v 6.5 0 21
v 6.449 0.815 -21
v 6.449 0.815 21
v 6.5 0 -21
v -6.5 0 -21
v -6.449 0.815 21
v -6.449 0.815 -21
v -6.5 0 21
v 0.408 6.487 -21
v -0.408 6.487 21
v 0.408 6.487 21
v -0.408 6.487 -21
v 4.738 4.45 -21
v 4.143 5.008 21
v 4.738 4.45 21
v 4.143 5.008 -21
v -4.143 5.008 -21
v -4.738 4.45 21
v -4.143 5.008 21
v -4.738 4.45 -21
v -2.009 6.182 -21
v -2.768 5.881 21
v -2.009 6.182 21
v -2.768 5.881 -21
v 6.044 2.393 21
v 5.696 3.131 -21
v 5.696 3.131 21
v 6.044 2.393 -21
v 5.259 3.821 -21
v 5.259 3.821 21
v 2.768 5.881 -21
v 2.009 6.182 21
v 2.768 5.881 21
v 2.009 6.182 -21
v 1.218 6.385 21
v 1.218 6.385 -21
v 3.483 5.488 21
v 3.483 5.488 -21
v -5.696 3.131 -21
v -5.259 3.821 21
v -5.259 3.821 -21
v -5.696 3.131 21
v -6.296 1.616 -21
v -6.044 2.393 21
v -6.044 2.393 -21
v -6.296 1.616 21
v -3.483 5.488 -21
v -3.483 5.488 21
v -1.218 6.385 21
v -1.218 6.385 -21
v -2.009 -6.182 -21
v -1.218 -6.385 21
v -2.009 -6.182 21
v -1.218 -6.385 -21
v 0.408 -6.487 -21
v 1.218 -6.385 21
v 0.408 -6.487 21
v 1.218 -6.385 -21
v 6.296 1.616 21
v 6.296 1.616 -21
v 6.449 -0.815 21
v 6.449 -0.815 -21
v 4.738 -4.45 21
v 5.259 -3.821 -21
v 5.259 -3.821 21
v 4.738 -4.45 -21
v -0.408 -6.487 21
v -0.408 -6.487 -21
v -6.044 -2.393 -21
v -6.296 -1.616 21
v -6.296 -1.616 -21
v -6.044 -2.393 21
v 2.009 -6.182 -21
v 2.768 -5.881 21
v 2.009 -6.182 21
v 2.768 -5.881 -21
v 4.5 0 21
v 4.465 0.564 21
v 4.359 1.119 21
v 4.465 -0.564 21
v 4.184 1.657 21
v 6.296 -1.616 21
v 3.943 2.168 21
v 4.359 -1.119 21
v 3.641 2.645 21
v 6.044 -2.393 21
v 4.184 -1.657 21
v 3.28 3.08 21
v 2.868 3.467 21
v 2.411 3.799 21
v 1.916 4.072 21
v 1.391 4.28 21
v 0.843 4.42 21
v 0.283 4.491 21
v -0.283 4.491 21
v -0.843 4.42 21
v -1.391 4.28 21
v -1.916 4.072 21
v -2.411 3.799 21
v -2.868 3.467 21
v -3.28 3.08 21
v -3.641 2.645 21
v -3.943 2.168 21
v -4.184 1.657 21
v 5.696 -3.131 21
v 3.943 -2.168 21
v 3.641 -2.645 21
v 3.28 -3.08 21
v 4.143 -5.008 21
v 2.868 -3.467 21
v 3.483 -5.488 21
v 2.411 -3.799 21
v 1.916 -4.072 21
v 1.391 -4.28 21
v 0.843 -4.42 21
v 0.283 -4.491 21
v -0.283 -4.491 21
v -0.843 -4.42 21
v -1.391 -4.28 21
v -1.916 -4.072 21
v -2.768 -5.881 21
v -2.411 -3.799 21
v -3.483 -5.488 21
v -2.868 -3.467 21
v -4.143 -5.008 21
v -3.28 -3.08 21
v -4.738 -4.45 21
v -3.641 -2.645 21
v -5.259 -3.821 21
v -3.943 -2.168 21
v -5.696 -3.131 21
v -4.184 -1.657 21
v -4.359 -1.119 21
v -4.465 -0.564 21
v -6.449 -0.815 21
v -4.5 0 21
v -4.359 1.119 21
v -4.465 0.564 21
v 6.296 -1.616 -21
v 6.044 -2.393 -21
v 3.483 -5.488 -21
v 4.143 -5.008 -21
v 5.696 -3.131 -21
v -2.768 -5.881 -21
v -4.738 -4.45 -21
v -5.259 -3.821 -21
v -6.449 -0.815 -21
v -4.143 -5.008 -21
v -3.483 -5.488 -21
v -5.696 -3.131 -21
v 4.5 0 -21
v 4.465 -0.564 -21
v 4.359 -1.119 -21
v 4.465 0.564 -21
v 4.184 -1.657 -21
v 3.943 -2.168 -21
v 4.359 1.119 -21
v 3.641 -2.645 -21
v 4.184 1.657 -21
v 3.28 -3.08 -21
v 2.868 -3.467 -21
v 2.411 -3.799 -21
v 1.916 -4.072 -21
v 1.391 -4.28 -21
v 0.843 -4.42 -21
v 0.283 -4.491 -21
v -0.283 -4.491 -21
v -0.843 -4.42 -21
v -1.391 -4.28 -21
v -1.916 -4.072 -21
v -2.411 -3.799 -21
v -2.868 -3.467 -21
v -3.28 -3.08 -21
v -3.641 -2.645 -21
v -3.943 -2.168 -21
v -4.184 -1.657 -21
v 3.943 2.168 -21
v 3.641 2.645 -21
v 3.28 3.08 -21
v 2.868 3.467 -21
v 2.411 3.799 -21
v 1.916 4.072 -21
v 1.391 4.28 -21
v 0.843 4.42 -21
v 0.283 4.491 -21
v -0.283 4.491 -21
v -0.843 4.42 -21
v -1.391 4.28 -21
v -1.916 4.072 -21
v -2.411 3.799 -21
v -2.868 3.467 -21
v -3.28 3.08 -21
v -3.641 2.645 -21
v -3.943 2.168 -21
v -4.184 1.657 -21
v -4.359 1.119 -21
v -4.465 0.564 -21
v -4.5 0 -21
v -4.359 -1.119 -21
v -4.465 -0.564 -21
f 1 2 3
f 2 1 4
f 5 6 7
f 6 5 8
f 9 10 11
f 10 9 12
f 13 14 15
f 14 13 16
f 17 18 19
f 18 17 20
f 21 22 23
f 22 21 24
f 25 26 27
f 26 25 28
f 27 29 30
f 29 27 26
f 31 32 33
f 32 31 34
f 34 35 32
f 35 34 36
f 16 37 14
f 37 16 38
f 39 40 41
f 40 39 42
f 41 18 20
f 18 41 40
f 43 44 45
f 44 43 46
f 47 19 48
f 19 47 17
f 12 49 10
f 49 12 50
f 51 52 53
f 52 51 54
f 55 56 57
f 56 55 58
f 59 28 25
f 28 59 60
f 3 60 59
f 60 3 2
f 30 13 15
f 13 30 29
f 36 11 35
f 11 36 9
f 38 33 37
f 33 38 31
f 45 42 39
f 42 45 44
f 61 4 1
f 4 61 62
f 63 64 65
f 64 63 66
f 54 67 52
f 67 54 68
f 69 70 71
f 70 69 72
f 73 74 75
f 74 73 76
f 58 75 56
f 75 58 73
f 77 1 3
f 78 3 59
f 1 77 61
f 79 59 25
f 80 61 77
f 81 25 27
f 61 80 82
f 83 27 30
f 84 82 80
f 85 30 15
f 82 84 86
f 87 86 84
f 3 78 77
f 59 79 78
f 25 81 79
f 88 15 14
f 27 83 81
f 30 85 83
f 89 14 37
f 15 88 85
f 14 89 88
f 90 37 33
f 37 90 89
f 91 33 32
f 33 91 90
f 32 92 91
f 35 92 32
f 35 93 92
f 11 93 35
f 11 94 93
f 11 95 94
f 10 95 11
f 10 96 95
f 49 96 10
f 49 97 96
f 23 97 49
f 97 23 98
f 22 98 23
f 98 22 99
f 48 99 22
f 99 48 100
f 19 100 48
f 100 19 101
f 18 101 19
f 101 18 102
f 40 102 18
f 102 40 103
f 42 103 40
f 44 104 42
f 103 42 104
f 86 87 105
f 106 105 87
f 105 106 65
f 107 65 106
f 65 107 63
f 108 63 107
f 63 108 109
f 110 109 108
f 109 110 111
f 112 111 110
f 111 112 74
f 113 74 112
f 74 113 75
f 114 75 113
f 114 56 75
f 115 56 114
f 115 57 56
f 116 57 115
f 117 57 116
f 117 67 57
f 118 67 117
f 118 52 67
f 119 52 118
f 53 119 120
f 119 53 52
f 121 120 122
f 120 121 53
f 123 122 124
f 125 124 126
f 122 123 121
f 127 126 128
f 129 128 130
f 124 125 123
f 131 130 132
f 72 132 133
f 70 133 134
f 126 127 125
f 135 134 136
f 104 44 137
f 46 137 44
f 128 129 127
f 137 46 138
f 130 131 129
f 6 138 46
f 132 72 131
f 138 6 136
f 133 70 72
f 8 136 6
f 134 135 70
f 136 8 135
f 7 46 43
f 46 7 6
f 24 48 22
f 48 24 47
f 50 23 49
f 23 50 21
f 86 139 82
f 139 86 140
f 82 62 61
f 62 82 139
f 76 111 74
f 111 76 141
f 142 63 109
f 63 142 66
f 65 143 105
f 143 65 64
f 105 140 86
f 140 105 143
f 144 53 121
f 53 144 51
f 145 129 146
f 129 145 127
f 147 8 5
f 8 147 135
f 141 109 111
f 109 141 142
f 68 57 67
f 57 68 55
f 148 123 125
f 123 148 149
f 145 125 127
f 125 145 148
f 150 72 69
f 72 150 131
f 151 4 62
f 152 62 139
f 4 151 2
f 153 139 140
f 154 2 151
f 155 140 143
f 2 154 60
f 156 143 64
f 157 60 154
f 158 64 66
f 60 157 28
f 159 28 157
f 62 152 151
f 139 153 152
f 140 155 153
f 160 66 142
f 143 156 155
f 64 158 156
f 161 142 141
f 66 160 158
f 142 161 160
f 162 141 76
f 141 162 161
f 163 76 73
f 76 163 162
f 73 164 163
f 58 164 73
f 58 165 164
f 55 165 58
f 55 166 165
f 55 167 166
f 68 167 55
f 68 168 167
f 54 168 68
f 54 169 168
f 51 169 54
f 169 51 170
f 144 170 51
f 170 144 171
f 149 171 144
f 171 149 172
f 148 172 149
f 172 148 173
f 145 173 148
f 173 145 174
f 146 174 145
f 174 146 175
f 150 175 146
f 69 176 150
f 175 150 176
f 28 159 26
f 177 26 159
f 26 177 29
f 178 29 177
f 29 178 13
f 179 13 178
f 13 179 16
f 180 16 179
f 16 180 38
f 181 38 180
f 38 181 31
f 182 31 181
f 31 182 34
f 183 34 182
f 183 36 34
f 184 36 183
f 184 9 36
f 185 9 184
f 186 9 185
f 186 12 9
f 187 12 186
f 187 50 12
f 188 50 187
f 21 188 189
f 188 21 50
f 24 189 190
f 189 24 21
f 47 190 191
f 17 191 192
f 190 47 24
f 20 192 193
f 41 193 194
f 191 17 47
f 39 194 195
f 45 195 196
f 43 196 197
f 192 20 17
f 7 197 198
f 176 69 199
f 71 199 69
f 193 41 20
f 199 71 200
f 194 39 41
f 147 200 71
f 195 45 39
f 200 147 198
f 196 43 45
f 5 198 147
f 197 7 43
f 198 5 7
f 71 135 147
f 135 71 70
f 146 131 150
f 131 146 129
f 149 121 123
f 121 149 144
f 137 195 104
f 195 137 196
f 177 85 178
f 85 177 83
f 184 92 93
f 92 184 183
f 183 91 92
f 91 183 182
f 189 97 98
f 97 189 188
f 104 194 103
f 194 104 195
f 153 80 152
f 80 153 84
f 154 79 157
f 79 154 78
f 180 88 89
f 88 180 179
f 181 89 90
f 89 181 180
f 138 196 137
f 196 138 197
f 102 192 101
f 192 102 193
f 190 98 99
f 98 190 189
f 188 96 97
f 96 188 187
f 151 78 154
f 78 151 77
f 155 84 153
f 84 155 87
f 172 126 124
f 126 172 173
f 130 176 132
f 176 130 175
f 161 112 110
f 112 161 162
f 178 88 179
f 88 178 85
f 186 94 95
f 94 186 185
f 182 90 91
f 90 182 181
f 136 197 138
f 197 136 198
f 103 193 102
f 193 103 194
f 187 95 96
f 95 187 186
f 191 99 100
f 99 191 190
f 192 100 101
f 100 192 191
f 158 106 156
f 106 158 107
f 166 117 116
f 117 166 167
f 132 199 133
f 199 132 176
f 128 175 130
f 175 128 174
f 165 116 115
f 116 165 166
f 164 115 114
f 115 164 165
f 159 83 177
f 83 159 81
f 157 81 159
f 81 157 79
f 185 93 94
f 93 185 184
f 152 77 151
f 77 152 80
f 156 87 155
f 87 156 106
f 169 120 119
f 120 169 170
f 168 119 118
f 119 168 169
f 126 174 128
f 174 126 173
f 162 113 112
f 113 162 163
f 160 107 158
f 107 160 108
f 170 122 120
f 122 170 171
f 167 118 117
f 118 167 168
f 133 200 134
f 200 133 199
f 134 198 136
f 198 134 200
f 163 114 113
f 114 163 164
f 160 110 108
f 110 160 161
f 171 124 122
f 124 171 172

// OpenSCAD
$fn = 50;


difference() {
	union() {
		translate(v = [0, 0, -21.0000000000]) {
			cylinder(h = 42, r = 6.5000000000);
		}
	}
	union() {
		translate(v = [0, 0, -100.0000000000]) {
			cylinder(h = 200, r = 4.5000000000);
		}
	}
}
